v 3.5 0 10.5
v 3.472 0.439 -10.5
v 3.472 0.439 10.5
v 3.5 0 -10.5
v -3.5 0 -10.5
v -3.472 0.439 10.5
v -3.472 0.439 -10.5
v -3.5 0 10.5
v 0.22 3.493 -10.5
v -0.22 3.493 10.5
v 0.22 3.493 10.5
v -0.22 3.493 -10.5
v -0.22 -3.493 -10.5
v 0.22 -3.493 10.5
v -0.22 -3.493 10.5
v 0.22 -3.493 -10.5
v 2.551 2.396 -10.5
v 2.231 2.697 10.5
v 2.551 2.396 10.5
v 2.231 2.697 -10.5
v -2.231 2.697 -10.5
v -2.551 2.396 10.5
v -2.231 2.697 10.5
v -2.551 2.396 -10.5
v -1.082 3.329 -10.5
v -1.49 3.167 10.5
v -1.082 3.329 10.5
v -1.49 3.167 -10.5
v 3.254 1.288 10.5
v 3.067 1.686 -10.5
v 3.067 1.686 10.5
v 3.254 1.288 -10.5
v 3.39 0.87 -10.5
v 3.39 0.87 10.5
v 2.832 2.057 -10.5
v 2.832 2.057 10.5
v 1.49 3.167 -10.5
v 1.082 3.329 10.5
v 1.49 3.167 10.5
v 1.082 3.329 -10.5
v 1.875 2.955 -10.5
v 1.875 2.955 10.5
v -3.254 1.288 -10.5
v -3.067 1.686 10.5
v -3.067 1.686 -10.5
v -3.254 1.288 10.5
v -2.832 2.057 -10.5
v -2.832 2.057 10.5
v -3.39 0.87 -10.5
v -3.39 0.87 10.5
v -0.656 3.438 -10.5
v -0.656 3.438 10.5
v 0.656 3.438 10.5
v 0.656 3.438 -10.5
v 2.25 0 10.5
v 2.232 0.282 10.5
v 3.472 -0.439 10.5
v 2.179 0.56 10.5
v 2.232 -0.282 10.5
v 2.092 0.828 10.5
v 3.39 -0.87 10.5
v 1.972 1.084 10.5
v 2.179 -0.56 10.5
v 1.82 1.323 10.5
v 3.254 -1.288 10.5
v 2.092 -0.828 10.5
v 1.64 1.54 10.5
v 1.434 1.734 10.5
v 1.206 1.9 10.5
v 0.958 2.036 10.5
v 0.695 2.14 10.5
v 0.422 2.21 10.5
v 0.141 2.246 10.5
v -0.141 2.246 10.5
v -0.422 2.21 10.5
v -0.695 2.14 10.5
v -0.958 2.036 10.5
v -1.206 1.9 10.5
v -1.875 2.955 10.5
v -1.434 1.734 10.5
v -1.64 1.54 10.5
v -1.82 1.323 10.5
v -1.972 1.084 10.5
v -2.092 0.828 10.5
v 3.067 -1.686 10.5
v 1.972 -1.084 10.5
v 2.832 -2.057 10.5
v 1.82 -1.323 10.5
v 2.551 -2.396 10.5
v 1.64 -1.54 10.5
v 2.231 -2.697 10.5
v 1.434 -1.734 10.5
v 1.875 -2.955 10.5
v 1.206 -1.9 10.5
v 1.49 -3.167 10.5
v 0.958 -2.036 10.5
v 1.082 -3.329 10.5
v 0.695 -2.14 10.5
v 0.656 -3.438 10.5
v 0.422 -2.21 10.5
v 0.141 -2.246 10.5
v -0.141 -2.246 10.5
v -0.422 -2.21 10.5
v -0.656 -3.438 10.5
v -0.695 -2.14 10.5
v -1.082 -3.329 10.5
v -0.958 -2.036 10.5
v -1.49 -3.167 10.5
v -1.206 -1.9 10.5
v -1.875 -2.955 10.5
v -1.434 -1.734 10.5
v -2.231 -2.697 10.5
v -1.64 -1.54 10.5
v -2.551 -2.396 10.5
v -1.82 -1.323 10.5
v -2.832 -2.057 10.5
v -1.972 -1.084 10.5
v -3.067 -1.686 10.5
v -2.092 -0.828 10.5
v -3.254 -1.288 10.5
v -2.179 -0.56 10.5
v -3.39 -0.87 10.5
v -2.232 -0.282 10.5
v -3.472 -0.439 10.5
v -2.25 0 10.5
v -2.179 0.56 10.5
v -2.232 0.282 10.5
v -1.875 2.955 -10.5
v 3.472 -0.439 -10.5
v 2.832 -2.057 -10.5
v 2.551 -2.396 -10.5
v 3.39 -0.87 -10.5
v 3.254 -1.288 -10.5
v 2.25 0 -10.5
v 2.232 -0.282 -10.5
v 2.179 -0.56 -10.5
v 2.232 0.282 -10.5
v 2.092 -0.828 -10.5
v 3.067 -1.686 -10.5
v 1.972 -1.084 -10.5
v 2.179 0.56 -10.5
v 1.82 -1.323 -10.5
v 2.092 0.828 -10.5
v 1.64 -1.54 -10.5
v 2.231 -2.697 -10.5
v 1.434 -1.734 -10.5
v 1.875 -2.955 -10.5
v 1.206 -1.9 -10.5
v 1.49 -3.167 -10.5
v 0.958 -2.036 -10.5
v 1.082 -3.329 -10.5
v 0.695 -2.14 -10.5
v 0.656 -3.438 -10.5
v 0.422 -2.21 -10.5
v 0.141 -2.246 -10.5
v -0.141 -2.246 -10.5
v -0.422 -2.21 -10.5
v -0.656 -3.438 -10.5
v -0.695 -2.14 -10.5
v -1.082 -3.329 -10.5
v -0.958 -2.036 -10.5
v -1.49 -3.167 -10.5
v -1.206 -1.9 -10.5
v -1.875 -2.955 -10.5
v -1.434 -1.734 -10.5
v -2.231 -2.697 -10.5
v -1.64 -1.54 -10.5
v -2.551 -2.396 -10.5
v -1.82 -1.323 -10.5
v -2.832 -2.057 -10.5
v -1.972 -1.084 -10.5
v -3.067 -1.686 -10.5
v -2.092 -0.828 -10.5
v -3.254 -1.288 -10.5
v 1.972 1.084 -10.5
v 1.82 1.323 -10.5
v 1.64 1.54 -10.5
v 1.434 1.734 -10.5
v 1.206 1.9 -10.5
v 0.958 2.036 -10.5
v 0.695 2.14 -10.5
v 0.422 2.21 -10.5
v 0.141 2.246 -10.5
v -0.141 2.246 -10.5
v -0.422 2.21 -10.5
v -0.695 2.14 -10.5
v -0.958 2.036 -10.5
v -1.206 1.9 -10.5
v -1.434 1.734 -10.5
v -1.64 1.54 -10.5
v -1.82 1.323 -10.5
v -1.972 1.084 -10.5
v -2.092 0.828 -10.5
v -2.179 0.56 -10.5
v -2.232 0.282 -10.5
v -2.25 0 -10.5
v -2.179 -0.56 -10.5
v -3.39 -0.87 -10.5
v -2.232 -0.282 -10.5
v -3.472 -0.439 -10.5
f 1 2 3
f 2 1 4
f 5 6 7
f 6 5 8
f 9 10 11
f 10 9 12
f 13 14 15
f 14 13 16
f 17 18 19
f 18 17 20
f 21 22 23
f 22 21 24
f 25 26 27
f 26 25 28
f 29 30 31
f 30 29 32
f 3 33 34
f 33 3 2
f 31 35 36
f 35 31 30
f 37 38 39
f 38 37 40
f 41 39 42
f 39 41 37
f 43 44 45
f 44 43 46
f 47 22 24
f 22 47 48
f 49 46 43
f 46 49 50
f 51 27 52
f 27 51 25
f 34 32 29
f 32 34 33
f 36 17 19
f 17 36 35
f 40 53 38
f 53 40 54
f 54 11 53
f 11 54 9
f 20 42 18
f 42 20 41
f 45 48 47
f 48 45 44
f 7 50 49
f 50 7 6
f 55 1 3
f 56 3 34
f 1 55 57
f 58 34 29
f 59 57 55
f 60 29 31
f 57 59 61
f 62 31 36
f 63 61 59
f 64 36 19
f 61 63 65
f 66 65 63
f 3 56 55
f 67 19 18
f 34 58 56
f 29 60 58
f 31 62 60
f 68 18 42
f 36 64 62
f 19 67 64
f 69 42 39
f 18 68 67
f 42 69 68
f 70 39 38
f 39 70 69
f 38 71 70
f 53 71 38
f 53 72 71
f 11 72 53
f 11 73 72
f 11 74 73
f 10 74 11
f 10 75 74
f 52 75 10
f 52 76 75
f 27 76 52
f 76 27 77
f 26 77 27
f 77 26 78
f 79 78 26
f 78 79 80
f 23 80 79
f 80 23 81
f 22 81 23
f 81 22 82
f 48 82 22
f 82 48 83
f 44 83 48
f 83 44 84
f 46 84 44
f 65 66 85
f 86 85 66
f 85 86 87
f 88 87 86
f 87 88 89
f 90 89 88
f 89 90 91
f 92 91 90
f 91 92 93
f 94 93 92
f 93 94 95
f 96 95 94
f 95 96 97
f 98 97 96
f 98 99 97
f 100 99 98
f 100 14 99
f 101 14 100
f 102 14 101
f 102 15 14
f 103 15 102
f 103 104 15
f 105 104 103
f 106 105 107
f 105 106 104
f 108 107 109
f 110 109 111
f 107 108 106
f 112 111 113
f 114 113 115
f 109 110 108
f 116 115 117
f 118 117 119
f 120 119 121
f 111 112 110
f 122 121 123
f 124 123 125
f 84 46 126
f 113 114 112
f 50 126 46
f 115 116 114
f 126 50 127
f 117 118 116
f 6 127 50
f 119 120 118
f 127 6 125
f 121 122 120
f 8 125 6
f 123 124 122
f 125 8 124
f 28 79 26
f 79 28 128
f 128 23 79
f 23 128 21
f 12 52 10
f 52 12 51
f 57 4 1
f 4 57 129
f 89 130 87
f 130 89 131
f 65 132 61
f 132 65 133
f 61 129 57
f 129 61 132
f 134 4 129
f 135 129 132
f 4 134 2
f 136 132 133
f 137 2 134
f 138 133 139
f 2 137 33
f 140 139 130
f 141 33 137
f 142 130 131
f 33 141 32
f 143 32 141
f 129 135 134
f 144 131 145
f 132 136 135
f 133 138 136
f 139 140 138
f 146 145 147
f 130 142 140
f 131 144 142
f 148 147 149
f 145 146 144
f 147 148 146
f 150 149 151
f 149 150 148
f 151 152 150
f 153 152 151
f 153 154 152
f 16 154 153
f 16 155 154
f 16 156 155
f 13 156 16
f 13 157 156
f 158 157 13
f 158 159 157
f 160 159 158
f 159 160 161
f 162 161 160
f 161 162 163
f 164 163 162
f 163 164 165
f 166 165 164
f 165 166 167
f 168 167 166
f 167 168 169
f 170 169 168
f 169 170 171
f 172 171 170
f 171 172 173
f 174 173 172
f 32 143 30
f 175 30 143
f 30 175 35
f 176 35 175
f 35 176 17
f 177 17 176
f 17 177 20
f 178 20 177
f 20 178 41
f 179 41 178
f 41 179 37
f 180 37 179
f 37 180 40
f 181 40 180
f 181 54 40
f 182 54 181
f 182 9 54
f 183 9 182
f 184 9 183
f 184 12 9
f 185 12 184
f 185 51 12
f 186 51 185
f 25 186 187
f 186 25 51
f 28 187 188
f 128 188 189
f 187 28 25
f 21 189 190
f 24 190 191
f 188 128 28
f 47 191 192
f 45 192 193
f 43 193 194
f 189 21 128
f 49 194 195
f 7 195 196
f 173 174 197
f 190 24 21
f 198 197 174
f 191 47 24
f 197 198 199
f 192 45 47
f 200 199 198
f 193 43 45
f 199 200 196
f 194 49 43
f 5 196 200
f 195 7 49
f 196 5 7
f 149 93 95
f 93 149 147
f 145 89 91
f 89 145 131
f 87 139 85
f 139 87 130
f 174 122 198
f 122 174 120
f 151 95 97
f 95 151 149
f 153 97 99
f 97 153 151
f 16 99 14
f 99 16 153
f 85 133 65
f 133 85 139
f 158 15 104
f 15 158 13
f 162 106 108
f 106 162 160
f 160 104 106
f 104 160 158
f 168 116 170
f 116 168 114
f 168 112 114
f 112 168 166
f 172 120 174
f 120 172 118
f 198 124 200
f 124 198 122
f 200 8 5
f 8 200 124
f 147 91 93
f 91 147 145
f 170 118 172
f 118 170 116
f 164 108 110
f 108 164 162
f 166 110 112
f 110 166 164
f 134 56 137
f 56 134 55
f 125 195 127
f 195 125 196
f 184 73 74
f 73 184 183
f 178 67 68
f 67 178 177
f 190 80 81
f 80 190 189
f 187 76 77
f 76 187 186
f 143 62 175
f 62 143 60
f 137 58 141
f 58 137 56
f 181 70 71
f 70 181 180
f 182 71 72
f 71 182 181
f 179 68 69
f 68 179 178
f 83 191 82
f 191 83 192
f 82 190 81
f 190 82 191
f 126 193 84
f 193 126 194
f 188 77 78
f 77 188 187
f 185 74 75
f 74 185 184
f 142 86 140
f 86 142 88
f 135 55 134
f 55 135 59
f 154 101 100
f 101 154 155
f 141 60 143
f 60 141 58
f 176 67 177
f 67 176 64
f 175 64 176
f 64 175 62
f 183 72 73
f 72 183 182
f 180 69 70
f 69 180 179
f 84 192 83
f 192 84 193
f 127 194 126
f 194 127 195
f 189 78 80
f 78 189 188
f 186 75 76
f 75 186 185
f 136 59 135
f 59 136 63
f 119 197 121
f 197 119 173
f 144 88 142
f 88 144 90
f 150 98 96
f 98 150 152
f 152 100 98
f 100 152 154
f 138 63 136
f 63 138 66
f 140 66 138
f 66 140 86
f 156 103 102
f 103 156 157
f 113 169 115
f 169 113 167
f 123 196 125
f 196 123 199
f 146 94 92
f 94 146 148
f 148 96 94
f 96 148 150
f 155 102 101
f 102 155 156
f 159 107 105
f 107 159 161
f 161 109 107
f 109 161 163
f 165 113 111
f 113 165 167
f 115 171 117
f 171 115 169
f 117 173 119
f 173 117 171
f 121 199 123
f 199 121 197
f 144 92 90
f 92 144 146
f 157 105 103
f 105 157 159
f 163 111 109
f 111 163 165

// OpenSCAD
$fn = 50;


difference() {
	union() {
		translate(v = [0, 0, -10.5000000000]) {
			cylinder(h = 21, r = 3.5000000000);
		}
	}
	union() {
		translate(v = [0, 0, -100.0000000000]) {
			cylinder(h = 200, r = 2.2500000000);
		}
	}
}
